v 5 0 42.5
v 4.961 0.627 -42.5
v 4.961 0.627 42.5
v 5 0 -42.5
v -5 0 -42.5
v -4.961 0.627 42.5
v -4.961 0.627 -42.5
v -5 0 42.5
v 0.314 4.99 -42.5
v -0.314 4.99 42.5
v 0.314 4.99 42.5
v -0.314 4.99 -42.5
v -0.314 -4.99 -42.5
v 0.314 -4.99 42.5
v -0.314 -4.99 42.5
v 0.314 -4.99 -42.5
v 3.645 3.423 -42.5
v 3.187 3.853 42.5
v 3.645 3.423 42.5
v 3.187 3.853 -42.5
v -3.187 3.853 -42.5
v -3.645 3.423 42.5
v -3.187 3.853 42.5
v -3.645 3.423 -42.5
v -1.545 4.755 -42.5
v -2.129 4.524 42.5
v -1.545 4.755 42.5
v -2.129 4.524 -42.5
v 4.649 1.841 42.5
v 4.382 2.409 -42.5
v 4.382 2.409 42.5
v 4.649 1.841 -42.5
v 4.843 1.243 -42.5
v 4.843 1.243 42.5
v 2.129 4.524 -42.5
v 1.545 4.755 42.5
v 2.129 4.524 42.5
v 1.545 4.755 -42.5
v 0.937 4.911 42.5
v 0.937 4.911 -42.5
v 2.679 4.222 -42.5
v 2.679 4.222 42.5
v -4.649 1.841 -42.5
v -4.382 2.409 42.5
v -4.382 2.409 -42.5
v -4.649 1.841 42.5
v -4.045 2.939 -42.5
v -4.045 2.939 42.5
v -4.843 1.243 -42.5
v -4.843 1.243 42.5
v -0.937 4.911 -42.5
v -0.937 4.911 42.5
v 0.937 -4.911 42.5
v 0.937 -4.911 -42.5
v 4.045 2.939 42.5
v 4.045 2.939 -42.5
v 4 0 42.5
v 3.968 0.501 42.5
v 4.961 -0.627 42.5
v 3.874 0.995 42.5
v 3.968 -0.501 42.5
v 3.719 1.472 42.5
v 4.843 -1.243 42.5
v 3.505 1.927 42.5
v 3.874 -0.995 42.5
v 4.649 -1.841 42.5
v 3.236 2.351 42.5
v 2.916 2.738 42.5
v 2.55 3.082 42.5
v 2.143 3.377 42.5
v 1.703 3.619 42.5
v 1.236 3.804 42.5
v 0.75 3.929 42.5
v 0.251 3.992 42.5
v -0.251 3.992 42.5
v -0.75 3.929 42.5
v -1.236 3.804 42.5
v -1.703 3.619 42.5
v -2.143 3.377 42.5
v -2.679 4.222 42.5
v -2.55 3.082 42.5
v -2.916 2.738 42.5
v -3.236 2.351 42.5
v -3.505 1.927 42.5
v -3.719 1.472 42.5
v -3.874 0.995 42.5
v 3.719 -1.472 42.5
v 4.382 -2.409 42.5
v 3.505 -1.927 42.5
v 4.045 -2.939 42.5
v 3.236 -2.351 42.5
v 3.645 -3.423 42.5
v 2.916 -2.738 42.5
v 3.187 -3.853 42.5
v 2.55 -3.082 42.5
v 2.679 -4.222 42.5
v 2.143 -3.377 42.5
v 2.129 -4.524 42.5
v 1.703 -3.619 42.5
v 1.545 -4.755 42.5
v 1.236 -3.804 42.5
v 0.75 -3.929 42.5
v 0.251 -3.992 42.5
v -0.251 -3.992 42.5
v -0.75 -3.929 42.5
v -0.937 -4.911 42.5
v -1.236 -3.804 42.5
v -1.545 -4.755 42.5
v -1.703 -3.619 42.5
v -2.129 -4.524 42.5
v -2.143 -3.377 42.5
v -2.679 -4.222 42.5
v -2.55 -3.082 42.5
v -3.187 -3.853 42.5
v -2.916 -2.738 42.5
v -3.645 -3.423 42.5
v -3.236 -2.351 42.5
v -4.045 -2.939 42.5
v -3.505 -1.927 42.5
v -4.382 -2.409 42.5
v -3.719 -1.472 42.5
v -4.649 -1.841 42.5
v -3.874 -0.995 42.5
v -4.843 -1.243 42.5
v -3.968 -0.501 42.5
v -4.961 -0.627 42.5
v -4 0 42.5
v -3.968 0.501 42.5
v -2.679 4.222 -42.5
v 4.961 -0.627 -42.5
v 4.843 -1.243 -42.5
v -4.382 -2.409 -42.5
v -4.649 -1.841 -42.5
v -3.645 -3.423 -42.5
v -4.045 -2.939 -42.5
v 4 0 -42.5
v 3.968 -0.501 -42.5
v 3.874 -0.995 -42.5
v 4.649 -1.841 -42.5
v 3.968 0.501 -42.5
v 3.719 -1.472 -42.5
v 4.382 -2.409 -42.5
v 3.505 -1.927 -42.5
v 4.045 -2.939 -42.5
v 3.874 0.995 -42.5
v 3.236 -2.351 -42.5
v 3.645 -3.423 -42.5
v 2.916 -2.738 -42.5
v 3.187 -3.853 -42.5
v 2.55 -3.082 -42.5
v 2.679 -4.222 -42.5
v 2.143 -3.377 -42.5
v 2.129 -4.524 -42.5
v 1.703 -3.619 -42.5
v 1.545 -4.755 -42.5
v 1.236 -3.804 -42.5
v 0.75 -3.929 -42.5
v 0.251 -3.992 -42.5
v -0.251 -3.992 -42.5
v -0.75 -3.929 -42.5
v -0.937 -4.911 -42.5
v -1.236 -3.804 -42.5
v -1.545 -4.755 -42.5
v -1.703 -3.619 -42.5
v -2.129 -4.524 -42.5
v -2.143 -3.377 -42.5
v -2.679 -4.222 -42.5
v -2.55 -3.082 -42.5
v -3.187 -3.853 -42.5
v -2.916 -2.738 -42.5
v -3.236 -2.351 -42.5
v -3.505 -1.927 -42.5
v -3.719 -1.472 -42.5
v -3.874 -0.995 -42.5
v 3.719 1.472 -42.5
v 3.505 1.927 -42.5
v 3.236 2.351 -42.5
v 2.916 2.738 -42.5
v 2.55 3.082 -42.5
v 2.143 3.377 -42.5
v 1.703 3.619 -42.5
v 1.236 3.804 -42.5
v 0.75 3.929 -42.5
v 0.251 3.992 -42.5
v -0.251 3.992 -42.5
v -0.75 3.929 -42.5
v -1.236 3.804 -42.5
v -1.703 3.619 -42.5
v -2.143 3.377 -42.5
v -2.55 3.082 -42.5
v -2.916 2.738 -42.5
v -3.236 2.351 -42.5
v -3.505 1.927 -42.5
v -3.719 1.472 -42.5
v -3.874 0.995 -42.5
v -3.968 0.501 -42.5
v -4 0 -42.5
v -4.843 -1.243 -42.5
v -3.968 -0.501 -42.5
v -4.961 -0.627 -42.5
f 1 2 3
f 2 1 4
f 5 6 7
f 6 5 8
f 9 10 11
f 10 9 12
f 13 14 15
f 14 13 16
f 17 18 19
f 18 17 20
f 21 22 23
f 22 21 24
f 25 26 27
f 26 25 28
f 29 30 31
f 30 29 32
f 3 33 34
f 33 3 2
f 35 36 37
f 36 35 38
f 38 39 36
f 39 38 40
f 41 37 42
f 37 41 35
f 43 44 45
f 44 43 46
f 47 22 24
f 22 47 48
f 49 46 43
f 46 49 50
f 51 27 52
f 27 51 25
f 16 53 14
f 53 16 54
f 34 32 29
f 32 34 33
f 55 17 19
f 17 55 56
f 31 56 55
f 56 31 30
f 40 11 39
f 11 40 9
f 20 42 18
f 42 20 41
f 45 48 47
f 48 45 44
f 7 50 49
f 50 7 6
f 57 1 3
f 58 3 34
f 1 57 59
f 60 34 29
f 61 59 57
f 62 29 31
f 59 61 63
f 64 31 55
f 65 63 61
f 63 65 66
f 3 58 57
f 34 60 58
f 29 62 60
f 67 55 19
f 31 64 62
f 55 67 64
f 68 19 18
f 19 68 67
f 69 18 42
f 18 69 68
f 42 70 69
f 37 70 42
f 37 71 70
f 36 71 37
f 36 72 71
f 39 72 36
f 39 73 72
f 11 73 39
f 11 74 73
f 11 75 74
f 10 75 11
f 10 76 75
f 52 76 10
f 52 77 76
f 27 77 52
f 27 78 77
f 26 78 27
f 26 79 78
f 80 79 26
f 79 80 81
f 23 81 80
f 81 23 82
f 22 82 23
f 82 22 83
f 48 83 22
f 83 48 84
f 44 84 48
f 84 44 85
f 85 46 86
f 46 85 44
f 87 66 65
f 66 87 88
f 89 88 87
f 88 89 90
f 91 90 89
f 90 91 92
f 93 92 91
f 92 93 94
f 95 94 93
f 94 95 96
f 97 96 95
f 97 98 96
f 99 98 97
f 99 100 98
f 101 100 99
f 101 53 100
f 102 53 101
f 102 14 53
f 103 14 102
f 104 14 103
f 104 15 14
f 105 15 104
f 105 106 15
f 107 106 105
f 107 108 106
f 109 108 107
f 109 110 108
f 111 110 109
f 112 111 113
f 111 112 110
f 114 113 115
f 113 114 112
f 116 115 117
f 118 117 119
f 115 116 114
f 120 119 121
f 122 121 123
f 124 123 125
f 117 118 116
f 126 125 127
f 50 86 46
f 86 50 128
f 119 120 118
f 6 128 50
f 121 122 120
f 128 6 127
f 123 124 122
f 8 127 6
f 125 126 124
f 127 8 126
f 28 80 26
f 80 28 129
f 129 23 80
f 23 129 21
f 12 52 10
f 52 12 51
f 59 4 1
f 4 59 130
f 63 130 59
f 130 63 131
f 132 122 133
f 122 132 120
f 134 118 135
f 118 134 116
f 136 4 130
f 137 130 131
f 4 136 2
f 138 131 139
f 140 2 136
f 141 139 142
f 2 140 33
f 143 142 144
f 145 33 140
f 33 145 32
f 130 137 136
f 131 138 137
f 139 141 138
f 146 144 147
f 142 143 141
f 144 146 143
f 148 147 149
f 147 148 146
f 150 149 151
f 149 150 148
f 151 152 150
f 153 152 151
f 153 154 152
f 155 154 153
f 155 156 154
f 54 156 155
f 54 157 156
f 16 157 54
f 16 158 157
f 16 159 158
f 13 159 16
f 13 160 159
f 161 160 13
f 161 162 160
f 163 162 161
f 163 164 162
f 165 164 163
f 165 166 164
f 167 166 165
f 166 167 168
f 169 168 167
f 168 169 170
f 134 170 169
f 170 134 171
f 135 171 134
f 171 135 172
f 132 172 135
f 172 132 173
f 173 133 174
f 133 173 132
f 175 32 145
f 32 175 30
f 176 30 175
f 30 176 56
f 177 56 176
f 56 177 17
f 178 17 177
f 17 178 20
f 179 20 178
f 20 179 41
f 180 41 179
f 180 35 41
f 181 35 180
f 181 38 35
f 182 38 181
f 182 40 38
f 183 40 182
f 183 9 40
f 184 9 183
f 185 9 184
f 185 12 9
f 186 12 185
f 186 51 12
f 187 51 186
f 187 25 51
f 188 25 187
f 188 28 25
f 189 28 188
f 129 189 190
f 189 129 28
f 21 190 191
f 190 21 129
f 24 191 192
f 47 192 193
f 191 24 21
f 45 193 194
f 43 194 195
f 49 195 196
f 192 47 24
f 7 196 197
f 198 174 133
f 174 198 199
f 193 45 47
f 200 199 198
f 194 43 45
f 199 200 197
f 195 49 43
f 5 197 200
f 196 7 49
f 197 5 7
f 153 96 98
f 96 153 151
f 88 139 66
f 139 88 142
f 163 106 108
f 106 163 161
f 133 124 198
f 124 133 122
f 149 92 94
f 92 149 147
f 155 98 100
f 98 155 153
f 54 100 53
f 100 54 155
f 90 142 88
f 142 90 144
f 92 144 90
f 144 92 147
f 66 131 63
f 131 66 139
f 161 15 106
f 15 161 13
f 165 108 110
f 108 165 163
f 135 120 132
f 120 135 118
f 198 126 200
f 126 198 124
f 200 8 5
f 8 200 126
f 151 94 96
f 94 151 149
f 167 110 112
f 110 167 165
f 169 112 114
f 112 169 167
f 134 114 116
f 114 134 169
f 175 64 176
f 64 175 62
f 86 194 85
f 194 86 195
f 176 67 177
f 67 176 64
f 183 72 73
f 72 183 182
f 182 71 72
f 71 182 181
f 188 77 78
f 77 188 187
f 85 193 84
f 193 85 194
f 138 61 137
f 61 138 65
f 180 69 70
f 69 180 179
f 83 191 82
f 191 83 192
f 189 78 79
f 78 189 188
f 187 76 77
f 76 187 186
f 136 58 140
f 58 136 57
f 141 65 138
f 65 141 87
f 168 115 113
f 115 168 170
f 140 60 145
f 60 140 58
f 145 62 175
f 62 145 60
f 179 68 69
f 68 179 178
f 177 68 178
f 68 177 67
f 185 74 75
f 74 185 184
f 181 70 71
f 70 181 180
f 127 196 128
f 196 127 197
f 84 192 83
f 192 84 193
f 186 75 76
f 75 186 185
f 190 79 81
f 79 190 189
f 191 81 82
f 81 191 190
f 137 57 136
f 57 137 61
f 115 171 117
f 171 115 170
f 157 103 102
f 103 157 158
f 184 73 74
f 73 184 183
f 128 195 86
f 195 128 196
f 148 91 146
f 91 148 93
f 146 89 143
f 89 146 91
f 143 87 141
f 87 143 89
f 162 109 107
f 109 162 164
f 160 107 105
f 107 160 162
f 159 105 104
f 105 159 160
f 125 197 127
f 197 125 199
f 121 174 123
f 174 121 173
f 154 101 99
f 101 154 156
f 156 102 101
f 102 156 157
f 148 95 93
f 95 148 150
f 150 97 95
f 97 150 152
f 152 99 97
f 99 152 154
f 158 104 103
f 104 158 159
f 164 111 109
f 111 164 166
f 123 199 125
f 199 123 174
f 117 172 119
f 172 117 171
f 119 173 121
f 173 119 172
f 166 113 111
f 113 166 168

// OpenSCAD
$fn = 50;


difference() {
	union() {
		translate(v = [0, 0, -42.5000000000]) {
			cylinder(h = 85, r = 5.0000000000);
		}
	}
	union() {
		translate(v = [0, 0, -100.0000000000]) {
			cylinder(h = 200, r = 4);
		}
	}
}
